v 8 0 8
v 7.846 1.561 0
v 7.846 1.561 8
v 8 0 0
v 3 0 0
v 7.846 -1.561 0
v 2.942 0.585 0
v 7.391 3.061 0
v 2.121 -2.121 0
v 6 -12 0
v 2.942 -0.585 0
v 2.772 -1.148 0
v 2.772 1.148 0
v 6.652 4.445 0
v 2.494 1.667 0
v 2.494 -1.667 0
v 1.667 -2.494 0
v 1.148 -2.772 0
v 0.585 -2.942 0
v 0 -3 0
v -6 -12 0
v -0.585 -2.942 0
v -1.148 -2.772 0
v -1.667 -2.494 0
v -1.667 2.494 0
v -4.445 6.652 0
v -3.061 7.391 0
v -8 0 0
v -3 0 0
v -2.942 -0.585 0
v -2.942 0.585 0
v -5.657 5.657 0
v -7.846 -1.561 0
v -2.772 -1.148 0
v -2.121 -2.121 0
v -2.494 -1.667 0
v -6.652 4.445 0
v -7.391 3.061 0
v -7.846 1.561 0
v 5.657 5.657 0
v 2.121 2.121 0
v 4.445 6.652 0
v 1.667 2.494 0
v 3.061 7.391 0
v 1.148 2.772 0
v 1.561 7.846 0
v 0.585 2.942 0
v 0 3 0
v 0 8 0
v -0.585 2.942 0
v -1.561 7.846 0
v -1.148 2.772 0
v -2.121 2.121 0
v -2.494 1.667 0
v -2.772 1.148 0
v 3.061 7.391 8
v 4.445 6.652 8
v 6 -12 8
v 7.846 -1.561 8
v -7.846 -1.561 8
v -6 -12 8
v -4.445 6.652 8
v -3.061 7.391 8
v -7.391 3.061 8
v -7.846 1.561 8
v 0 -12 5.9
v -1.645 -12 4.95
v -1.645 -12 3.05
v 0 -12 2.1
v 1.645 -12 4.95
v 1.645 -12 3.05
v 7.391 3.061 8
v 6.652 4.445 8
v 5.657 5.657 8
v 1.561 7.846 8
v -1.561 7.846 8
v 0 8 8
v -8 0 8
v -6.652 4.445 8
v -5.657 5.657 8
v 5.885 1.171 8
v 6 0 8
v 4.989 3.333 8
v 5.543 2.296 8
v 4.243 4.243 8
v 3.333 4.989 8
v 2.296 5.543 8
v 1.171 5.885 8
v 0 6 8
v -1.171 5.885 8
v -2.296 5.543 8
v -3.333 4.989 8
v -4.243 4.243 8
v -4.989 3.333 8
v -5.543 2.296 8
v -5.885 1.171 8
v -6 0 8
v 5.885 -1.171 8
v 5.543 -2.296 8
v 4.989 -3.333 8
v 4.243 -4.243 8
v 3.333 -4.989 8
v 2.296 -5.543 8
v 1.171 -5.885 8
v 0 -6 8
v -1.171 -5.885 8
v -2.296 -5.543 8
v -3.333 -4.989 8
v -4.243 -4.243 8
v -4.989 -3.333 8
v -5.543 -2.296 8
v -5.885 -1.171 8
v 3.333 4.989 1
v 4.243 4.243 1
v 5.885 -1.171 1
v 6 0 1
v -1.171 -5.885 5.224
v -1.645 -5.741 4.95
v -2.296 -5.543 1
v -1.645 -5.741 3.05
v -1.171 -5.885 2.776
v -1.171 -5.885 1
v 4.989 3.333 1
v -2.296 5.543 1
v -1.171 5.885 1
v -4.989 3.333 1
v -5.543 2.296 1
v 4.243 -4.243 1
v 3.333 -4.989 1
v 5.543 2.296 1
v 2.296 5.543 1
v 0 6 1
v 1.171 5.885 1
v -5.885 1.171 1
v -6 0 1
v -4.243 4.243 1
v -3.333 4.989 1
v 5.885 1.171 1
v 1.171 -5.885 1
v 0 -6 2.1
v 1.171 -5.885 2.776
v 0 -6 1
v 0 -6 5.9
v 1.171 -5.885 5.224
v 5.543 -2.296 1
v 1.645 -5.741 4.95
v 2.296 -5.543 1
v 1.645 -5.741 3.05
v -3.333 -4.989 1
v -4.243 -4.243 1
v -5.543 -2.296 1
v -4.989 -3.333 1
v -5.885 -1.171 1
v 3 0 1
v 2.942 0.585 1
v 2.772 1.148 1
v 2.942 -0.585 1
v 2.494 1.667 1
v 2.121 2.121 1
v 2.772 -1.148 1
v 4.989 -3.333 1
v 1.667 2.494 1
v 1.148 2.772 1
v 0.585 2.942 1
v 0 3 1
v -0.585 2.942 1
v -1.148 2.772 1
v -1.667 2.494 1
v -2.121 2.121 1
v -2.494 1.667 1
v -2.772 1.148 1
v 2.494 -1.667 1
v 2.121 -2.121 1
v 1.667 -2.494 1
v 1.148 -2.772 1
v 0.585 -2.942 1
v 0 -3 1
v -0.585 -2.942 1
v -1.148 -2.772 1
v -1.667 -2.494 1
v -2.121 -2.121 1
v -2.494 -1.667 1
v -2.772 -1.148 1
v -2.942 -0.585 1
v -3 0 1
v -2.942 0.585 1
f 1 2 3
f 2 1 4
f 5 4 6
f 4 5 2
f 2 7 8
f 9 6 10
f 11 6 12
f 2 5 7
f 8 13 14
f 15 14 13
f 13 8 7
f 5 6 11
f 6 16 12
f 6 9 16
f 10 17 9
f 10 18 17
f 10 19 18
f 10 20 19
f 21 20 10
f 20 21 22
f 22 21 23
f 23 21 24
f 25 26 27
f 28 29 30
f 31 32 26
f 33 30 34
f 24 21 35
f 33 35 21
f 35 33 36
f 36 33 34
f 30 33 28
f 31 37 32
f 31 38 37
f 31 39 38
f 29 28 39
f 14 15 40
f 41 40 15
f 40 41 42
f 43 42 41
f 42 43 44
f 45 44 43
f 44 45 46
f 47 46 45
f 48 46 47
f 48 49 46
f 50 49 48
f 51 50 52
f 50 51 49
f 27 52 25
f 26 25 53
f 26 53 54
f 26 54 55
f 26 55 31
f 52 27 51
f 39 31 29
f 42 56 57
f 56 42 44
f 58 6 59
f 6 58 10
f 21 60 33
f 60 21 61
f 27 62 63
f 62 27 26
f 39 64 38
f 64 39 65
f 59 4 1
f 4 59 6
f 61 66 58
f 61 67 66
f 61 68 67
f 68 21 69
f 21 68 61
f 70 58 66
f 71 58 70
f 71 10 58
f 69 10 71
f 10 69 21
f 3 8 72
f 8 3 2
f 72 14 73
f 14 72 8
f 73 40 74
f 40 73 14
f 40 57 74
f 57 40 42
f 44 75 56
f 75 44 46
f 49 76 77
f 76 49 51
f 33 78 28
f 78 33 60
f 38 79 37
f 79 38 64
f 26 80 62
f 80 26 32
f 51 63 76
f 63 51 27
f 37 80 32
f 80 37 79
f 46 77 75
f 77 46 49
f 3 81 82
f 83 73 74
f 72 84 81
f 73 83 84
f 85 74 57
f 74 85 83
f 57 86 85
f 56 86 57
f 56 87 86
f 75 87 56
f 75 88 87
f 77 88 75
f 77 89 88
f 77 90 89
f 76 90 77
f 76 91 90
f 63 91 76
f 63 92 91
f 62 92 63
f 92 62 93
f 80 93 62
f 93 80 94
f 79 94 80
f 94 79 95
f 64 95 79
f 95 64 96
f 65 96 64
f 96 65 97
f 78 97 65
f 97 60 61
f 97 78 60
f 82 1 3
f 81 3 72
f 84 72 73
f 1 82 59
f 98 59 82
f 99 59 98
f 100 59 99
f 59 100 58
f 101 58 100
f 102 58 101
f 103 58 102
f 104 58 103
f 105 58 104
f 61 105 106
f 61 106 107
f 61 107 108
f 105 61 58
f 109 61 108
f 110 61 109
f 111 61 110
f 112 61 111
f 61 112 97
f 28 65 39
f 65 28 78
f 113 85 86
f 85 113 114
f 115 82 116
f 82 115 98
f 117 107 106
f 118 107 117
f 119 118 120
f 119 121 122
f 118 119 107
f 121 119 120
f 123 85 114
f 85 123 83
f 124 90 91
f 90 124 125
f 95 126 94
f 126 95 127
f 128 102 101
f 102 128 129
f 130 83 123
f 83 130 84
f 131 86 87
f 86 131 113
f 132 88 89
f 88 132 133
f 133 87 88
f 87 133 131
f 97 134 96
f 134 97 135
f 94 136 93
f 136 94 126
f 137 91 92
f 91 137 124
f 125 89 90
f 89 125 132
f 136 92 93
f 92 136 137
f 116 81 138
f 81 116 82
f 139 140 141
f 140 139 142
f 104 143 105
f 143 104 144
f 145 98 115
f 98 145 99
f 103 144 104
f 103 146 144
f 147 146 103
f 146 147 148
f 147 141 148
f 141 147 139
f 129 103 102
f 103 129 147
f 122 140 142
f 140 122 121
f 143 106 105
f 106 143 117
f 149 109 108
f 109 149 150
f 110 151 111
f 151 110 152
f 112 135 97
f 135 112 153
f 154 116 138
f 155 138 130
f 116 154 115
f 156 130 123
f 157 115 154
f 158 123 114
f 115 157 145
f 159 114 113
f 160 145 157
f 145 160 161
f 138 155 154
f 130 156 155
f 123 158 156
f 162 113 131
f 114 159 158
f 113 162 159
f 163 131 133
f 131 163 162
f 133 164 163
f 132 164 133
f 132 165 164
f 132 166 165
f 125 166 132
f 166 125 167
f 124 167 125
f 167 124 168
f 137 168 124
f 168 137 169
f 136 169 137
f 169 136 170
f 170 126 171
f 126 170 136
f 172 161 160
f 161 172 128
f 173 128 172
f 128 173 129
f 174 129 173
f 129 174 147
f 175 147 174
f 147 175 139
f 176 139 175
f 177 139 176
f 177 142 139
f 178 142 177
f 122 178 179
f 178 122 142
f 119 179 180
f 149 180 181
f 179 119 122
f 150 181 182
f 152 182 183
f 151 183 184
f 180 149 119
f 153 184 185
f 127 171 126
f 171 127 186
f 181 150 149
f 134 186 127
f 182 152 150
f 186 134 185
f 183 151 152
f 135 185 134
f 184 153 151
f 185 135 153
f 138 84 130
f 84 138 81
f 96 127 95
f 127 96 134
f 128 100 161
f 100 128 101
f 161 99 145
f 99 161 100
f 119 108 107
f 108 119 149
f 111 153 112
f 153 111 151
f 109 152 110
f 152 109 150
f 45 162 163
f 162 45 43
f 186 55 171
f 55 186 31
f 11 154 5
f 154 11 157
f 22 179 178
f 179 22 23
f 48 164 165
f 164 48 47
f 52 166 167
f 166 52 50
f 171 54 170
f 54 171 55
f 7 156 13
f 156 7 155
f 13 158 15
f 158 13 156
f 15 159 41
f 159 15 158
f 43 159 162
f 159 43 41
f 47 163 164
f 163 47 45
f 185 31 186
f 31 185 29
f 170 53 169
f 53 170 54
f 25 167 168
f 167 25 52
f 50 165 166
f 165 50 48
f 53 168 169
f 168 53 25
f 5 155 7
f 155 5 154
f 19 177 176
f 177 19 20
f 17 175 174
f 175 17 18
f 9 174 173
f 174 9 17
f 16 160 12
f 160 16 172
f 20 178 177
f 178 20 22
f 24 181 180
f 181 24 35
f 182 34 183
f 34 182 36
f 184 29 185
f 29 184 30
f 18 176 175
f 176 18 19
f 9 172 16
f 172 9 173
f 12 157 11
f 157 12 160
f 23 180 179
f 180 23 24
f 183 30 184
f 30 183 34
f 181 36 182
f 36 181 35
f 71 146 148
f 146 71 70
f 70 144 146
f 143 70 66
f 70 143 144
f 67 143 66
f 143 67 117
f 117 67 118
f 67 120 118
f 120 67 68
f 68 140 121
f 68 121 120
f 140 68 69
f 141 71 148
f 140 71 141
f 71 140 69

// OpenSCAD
/*

    My bike has a front brake mount where the nut sits inside the
    frame.  That makes it hard to attach a rack.  This adapter sits
    around the brake mount (like a washer) and I screw into it from below to attach the mudguard.
    
    (c) R Bowman 2017, released under CERN open hardware license
    
*/

brake_mount_d = 12;
hole_d = 6;
mounting_bolt = 4;
bottom_t = 1;
h = 8;

difference(){
    hull(){
        cylinder(h=h, d=brake_mount_d+2*2, $fn=32);
        translate([-brake_mount_d/2,-brake_mount_d/2-6,0]) cube([brake_mount_d,1,h]);
    }
    
    translate([0,0,bottom_t]) cylinder(h=h, d=brake_mount_d, $fn=32);
    translate([0,0,-1]) cylinder(h=999, d=hole_d, $fn=32);
    translate([0,0,h/2]) rotate([90,30,0]) cylinder(d=mounting_bolt*0.95, h=999);
}
